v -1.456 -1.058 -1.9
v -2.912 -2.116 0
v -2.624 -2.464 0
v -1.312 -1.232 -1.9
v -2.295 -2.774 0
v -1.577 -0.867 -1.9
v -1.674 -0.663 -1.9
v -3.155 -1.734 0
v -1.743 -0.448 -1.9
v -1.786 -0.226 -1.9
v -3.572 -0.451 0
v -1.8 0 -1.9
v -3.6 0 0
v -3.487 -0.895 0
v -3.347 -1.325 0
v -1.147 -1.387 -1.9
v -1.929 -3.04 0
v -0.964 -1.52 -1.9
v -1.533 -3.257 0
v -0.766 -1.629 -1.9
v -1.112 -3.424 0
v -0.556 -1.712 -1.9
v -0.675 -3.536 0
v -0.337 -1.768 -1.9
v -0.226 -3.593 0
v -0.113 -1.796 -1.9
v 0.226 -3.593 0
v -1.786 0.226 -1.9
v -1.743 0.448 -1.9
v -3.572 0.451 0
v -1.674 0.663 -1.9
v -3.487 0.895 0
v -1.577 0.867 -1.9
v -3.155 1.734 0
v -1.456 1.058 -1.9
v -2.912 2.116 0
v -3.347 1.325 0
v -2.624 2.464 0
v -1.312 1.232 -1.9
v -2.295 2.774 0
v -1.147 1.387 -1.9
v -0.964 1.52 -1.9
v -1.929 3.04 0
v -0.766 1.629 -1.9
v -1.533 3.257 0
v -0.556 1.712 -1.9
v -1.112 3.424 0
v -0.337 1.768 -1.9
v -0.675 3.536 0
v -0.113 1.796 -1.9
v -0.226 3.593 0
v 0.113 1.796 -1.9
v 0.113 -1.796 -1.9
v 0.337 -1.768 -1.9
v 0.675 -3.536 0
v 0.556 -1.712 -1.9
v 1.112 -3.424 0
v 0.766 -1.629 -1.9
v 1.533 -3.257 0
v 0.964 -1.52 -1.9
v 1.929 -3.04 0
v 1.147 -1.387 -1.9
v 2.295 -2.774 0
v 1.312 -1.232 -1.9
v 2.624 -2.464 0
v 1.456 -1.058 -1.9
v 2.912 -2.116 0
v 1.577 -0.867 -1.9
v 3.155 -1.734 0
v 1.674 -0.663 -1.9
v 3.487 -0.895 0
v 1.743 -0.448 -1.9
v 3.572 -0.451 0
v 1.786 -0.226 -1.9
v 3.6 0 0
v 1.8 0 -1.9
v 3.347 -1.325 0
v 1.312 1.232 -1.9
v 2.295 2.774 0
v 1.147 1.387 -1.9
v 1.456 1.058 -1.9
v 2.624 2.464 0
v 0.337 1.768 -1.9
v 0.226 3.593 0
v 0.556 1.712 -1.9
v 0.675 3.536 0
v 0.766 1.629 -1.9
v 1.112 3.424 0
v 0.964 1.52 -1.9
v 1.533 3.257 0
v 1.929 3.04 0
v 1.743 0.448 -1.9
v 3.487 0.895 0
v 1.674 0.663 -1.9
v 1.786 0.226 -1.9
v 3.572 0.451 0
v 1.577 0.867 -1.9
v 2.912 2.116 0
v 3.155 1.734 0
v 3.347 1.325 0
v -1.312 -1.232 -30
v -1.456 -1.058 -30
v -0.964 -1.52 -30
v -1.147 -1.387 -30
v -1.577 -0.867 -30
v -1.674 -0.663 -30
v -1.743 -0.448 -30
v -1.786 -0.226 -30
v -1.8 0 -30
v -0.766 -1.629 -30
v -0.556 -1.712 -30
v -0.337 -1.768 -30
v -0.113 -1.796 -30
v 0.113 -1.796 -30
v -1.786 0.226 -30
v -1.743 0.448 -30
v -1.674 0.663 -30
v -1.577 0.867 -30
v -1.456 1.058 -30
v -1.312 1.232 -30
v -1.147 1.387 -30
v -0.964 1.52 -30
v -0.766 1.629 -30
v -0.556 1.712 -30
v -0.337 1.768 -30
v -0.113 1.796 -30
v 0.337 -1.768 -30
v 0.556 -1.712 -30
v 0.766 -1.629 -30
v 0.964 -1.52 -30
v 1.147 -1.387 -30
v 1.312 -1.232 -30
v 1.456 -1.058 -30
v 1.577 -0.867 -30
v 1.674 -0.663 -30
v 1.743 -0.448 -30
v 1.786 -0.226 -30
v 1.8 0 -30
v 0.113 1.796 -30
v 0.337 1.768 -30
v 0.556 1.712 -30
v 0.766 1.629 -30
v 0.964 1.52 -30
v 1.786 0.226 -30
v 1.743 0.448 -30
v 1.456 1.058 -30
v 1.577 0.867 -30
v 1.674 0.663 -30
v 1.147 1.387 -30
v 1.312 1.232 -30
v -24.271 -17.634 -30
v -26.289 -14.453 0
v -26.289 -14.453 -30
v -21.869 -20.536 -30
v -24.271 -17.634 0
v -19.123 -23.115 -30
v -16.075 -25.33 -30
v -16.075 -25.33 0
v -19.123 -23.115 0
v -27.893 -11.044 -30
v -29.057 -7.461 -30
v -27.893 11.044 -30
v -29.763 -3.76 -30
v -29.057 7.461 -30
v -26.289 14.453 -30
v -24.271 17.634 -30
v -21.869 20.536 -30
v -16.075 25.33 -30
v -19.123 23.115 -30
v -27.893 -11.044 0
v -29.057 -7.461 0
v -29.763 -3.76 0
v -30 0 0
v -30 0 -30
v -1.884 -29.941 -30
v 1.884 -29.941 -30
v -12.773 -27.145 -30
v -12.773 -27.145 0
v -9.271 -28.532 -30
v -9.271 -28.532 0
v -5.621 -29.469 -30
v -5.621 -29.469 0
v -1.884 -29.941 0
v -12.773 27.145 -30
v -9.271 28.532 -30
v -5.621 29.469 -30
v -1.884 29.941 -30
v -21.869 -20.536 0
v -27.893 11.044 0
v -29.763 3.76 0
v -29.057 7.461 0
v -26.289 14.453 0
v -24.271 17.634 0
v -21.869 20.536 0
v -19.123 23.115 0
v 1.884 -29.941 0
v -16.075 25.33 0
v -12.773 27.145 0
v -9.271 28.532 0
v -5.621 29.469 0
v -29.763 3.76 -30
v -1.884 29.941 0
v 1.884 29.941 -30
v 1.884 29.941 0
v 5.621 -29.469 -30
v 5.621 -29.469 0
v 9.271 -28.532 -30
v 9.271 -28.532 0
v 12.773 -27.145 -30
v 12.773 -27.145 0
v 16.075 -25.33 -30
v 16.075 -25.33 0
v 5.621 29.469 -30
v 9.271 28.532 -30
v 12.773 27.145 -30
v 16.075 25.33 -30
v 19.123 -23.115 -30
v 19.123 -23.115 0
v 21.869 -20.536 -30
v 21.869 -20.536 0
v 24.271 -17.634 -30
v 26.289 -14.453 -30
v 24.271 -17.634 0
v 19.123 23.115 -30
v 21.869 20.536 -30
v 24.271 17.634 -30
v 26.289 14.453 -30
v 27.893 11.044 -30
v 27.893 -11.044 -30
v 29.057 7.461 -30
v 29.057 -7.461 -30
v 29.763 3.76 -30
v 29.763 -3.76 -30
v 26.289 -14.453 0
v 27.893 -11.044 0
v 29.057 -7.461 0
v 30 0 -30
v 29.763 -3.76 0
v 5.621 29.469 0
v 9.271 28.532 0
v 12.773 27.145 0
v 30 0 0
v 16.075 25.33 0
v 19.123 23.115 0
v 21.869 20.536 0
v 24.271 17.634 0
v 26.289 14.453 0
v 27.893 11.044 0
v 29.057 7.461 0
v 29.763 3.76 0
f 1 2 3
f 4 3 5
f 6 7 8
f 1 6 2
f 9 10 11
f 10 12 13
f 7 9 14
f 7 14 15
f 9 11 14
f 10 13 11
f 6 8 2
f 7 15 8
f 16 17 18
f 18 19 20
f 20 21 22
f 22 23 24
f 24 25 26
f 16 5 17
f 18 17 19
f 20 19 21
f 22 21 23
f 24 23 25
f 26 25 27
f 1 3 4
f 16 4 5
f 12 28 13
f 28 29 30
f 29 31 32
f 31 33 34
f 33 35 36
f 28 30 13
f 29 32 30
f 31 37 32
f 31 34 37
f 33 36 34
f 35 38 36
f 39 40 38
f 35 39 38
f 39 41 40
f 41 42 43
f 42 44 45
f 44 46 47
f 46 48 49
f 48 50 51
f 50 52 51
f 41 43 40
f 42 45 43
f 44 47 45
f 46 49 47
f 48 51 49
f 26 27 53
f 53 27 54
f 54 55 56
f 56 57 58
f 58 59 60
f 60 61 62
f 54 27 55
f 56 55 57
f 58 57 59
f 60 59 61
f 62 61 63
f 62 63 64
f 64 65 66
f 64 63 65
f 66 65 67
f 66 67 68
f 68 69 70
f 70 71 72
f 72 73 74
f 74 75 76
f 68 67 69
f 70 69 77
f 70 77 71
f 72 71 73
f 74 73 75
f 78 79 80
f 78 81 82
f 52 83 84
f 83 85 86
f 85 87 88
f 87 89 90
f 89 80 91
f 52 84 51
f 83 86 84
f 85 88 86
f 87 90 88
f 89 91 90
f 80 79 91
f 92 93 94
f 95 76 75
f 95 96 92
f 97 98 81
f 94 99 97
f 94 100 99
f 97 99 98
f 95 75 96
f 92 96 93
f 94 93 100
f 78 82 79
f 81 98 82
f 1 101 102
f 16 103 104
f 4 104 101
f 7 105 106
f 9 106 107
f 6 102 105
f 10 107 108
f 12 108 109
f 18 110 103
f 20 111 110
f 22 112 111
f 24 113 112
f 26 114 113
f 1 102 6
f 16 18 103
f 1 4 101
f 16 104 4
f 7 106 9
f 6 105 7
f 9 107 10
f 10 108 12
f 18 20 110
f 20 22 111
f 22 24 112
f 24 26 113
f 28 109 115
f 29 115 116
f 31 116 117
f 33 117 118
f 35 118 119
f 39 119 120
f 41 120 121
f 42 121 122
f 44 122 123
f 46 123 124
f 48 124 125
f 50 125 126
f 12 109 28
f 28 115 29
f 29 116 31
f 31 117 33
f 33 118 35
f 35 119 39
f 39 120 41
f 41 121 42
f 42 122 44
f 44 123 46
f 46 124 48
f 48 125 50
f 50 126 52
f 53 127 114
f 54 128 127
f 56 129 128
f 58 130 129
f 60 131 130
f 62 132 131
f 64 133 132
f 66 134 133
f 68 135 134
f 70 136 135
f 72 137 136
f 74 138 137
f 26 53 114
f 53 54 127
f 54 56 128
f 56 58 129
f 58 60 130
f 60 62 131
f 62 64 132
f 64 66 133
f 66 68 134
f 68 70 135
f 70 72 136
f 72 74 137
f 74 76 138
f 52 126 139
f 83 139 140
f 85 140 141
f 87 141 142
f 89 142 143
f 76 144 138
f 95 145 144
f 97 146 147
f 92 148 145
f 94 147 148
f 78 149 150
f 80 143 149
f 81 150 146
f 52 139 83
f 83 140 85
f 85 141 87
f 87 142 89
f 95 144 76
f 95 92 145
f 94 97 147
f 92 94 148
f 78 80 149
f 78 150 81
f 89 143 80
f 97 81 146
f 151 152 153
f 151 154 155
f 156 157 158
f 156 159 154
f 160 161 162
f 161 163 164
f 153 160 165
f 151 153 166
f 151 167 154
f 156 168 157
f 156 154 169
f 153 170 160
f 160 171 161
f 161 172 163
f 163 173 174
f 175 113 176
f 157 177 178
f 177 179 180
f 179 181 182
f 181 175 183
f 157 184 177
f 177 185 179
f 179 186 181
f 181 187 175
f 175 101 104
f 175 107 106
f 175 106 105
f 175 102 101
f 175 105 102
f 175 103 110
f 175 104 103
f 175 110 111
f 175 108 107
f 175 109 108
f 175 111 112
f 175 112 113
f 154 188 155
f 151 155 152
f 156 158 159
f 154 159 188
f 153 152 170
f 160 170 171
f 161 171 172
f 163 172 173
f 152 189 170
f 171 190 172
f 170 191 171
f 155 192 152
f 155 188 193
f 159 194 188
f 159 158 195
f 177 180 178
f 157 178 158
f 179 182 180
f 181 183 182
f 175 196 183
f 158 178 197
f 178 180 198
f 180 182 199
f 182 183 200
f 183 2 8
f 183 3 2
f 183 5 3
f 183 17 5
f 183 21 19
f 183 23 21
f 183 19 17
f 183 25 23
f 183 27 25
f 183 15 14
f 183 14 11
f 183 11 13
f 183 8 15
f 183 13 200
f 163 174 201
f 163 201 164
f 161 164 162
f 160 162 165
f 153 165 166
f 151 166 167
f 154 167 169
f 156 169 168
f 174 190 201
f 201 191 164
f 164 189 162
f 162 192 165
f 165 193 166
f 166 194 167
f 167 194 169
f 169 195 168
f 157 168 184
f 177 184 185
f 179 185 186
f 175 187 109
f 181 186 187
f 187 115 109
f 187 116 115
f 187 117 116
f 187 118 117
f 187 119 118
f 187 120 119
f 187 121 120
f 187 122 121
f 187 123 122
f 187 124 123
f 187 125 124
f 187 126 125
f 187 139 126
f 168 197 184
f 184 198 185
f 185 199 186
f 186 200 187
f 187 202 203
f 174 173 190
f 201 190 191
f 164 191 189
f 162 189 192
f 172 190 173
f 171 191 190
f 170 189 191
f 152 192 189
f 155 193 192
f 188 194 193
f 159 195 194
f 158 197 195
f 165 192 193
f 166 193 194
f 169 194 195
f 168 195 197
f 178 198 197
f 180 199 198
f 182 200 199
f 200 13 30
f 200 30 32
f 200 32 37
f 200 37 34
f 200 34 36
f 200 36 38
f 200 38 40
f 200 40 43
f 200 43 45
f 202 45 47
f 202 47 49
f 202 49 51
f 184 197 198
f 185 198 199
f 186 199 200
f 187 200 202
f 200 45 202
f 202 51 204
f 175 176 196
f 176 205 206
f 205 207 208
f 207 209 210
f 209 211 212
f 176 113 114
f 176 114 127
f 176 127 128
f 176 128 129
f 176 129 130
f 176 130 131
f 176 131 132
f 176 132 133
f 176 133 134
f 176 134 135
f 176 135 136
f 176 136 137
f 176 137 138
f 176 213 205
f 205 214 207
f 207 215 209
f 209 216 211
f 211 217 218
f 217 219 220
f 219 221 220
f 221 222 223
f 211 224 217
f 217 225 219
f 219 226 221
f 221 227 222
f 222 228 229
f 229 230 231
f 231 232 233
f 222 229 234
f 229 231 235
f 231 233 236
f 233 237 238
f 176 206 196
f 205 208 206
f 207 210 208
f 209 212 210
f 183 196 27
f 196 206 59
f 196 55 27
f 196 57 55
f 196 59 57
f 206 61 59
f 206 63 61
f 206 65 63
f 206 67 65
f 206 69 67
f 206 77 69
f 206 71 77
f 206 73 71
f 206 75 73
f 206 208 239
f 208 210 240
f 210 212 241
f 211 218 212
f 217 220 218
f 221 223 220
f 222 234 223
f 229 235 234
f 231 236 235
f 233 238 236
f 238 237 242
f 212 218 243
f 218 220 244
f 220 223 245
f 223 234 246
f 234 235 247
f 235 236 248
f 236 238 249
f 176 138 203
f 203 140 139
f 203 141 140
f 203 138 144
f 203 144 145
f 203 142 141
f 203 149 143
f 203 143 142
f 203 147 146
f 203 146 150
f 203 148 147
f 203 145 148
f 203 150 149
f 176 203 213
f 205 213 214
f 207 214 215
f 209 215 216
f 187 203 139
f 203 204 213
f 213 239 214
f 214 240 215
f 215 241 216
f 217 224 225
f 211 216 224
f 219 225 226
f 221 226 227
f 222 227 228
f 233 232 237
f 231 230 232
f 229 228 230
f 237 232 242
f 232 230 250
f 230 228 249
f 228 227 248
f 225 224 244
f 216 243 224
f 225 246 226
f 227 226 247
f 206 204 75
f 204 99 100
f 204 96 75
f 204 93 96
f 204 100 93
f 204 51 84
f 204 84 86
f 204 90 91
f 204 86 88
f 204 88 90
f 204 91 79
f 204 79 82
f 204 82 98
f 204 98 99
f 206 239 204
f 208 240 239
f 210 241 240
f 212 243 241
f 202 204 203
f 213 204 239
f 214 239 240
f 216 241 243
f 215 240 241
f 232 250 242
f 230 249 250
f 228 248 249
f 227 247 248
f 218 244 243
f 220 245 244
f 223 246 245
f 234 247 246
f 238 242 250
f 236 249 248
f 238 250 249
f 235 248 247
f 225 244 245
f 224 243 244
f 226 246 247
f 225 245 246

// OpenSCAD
$fn = 50;

difference() {
	union() {
		translate(v = [0, 0, -30.0]) {
			cylinder(h = 30, r = 30.0);
		}
	}
	union() {
		translate(v = [0, 0, 0]) {
			rotate(a = [0, 0, 0]) {
				difference() {
					union() {
						translate(v = [0, 0, -33.0]) {
							cylinder(h = 33, r = 1.5);
						}
						translate(v = [0, 0, -1.9]) {
							cylinder(h = 1.9, r1 = 1.8, r2 = 3.6);
						}
						translate(v = [0, 0, -33.0]) {
							cylinder(h = 33, r = 1.8);
						}
						translate(v = [0, 0, -33.0]) {
							cylinder(h = 33, r = 1.5);
						}
					}
					union();
				}
			}
		}
	}
}
